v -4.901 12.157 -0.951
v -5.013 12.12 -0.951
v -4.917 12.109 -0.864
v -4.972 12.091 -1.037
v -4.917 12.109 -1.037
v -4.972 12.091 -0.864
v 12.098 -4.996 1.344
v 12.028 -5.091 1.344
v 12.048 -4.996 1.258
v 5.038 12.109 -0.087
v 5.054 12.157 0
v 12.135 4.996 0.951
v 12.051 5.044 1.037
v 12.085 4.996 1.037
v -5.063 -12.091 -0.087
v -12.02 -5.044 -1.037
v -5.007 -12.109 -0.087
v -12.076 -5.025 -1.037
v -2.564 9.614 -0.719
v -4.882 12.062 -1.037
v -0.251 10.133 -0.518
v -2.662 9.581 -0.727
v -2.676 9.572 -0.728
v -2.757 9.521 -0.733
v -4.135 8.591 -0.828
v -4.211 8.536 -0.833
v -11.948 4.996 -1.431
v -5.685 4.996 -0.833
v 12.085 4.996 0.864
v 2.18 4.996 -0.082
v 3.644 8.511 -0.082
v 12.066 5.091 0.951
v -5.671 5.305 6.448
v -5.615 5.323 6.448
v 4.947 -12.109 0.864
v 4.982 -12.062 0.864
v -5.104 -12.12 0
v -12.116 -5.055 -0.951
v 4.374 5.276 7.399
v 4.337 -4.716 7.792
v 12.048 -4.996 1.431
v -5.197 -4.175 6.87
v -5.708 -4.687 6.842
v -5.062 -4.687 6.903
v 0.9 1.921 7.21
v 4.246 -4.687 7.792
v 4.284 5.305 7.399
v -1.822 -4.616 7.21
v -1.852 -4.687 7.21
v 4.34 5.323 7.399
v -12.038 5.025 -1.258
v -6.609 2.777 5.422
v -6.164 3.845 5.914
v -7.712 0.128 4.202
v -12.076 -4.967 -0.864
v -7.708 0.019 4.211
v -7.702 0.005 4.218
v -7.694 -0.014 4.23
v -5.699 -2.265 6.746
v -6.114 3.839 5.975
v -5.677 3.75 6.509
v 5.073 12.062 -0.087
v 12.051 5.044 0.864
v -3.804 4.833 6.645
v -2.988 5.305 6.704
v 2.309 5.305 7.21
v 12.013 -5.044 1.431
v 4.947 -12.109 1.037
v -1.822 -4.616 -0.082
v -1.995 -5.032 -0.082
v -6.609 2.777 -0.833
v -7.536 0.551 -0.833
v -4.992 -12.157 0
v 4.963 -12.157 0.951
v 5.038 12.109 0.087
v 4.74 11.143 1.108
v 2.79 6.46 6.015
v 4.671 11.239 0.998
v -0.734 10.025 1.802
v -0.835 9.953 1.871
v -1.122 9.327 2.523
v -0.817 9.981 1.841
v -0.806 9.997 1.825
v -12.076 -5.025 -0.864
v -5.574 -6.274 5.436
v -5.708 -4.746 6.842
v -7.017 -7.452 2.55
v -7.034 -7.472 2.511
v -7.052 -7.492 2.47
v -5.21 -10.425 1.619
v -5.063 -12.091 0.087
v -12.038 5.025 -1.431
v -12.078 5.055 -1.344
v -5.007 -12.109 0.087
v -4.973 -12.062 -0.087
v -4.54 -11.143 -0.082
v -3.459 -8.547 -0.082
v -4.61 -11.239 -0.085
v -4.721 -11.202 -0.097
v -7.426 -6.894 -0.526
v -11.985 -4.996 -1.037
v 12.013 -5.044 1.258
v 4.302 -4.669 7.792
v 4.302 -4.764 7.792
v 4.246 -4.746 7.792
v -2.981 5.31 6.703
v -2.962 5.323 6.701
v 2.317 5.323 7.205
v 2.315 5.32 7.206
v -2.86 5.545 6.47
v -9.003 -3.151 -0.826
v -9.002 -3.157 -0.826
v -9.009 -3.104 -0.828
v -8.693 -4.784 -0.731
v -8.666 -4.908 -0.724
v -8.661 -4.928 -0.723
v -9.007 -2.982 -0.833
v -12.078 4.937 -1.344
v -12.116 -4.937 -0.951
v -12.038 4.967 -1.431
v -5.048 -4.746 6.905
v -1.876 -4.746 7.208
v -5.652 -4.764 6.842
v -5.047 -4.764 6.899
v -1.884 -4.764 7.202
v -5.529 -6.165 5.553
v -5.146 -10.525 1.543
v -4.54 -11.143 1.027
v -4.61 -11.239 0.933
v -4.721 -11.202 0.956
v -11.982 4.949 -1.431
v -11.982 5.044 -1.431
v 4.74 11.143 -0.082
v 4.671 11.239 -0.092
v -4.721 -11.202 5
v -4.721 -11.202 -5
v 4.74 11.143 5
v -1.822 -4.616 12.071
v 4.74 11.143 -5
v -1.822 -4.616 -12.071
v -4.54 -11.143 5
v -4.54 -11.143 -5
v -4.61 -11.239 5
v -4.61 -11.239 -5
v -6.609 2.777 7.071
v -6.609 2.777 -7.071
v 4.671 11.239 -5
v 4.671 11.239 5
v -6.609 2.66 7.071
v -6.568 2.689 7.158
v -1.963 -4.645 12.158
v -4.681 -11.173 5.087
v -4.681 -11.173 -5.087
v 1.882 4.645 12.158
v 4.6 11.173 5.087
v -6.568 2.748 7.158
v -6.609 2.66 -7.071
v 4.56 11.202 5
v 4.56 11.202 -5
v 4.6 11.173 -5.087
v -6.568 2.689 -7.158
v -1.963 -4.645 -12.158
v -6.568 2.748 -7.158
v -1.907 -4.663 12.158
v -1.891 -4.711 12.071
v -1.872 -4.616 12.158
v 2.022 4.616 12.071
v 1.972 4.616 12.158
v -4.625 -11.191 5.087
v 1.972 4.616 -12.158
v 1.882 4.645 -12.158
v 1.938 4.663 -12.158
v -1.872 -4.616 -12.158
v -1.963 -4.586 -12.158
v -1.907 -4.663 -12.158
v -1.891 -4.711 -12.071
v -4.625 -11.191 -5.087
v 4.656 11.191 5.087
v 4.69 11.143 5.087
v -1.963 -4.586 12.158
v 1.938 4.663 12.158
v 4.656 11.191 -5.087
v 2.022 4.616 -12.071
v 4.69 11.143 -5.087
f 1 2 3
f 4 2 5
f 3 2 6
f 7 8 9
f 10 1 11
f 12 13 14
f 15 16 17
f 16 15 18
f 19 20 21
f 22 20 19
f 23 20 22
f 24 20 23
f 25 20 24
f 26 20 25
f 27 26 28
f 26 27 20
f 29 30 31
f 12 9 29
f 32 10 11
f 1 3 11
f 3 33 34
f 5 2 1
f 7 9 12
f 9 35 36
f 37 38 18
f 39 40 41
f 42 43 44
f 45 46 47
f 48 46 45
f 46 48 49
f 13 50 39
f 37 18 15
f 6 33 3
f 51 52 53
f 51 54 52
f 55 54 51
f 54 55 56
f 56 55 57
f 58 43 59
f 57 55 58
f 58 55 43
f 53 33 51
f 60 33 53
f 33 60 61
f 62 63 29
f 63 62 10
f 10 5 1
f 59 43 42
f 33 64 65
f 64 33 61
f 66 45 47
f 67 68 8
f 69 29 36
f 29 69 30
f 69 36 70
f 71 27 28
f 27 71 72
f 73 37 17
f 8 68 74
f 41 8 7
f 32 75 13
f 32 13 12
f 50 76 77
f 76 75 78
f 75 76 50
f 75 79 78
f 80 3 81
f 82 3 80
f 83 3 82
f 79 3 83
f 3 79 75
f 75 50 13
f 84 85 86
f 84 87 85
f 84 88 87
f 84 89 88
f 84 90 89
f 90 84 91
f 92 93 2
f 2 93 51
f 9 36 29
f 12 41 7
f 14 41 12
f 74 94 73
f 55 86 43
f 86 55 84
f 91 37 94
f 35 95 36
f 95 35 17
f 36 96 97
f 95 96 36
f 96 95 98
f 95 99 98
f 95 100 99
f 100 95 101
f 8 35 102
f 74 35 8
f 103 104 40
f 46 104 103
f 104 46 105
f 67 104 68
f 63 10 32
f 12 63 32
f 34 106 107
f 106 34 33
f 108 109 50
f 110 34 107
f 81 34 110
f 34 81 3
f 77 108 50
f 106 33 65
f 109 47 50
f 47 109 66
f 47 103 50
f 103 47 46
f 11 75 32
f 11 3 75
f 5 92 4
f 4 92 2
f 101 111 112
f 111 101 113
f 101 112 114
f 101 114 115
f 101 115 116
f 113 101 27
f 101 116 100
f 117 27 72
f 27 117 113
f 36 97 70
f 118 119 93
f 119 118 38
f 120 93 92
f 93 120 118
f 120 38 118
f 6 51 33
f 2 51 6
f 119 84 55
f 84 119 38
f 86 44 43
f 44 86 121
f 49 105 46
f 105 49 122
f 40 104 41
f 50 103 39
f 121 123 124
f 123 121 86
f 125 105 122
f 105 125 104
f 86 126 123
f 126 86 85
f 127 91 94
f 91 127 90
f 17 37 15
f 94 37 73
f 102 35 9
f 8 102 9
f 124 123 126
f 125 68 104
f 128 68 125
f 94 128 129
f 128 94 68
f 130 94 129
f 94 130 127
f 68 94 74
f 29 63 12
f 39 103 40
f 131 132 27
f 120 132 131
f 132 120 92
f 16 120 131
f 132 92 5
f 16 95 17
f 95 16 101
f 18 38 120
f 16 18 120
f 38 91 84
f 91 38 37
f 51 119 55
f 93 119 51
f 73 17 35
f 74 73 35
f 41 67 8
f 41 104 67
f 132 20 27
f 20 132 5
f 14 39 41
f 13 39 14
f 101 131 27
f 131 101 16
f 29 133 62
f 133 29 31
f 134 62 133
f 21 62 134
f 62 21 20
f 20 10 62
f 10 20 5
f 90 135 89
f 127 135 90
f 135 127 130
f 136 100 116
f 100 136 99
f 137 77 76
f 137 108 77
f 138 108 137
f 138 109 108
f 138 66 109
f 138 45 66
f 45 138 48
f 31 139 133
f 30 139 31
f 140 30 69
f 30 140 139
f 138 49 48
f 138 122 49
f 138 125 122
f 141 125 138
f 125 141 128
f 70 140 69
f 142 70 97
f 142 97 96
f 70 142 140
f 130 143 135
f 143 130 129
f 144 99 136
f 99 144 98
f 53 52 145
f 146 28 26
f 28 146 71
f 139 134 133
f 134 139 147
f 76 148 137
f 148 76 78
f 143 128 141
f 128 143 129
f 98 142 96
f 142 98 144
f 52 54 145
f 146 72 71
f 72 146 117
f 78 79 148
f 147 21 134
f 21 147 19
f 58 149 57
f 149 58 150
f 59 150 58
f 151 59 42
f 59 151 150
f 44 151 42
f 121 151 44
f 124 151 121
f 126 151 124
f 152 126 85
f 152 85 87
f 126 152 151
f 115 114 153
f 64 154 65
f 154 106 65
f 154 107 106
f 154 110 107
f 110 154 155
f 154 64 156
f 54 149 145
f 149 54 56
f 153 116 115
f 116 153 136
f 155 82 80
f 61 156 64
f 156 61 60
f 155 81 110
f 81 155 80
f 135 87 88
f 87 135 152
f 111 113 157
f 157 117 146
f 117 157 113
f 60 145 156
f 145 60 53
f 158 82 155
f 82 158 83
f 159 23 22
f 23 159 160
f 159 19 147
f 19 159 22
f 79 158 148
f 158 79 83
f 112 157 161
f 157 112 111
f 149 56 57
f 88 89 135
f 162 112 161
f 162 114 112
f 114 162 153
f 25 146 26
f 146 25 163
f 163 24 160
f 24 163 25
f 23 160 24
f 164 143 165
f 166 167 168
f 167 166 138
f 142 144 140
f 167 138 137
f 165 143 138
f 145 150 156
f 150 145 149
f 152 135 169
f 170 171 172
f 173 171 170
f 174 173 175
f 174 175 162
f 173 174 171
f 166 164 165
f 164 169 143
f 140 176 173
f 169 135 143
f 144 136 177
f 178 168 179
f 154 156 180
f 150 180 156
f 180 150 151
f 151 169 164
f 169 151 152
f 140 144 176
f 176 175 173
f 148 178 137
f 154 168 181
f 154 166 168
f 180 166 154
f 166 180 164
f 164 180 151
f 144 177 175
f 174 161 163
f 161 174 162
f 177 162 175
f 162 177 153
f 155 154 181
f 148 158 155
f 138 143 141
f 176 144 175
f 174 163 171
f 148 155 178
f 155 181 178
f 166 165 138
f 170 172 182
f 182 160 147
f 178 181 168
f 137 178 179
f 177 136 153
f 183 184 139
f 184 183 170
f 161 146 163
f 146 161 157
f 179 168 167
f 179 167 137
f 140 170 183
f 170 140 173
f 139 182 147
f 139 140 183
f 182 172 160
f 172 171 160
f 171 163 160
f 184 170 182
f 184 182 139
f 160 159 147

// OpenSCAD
// Auto-generated OpenSCAD file

    inner_points = 10*[[0.4640413965551187, 1.1143484030902198, 0.49999999999999933], [0.19221223995568226, 0.46157822176877006, 1.2071067811865472], [-0.19221223995568226, -0.46157822176877006, -1.2071067811865472], [-0.4640413965551187, -1.1143484030902198, -0.49999999999999933], [0.4640413965551183, 1.1143484030902195, -0.5000000000000007], [-0.19221223995568118, -0.46157822176876906, 1.2071067811865477], [0.19221223995568118, 0.46157822176876906, -1.2071067811865477], [-0.4640413965551183, -1.1143484030902195, 0.5000000000000007], [-0.3809410247220134, 0.9245993379208868, -1.6653345369377348e-16], [-0.6527701813214497, 0.2718291565994371, 0.7071067811865477], [-0.6527701813214505, 0.2718291565994365, -0.7071067811865472], [-0.9245993379208868, -0.38094102472201324, 5.551115123125783e-16]];

    outer_points = 10*[[1.2035201993020799, 0.49960866706726725, 0.09506361475190225], [1.1997598001990037, -0.49960866706726725, 0.134441001202246], [-1.1997598001990037, 0.49960866706726725, -0.134441001202246], [-1.2035201993020799, -0.49960866706726725, -0.09506361475190225], [0.5022747882439678, 1.2061620199129408, -7.479318947997693e-07], [0.4931963817293862, -1.2061620199129408, 0.09506467248733161], [-0.4931963817293862, 1.2061620199129408, -0.09506467248733161], [-0.5022747882439678, -1.2061620199129408, 7.479318947997693e-07], [0.4324480499089029, 0.5275793585592033, 0.7311967618584252], [0.42868765080582694, -0.47163797557533116, 0.770574148308769], [-0.5630231200644511, 0.5275793585592033, 0.6361328373029884], [-0.566783519167527, -0.47163797557533116, 0.6755102237533323]];

    // Convex hull for inner set (I)
    module inner_hull() {
        hull() {
            for (p = inner_points) {
                translate(p) sphere(r=0.1);
            }
        }
    }

    // Convex hull for outer set (O) minus inner hull (O \ I)
    module outer_minus_inner() {
        difference() {
            hull() {
                for (p = outer_points) {
                    translate(p) sphere(r=0.1);
                }
            }
            inner_hull(); // Subtract inner hull
        }
    }

    // Convex hull for outer set (O) minus all translated inner hulls
    module outer_minus_AllTranslationInner() {
        difference() {
            hull() {
                for (p = outer_points) {
                    translate(p) sphere(r=0.1);
                }
            }
            hull() {
                translate([0,0,50]) inner_hull();
                translate([0,0,-50]) inner_hull();
            }; // Subtract translated inner hulls
        }
    }

    // Difference between outer_minus_inner and outer_minus_AllTranslationInner
    module outer_minus_inner_diff() {
        difference() {
            // Outer minus inner
            difference() {
                hull() {
                    for (p = outer_points) {
                        translate(p) sphere(r=0.1);
                    }
                }
                inner_hull();
            }

            // Subtract Outer minus AllTranslationInner
            difference() {
                hull() {
                    for (p = outer_points) {
                        translate(p) sphere(r=0.1);
                    }
                }
                hull() {
                    translate([0,0,50]) inner_hull();
                    translate([0,0,-50]) inner_hull();
                };
            }
        }
    }

    // Rendering all with colors applied
    color([1, 0, 0, 0.5]) inner_hull(); // Transparent red
    color([0, 1, 0, 1]) outer_minus_AllTranslationInner(); // Opaque green
    color([1, 1, 0, 1]) outer_minus_inner_diff(); // Opaque yellow
    
